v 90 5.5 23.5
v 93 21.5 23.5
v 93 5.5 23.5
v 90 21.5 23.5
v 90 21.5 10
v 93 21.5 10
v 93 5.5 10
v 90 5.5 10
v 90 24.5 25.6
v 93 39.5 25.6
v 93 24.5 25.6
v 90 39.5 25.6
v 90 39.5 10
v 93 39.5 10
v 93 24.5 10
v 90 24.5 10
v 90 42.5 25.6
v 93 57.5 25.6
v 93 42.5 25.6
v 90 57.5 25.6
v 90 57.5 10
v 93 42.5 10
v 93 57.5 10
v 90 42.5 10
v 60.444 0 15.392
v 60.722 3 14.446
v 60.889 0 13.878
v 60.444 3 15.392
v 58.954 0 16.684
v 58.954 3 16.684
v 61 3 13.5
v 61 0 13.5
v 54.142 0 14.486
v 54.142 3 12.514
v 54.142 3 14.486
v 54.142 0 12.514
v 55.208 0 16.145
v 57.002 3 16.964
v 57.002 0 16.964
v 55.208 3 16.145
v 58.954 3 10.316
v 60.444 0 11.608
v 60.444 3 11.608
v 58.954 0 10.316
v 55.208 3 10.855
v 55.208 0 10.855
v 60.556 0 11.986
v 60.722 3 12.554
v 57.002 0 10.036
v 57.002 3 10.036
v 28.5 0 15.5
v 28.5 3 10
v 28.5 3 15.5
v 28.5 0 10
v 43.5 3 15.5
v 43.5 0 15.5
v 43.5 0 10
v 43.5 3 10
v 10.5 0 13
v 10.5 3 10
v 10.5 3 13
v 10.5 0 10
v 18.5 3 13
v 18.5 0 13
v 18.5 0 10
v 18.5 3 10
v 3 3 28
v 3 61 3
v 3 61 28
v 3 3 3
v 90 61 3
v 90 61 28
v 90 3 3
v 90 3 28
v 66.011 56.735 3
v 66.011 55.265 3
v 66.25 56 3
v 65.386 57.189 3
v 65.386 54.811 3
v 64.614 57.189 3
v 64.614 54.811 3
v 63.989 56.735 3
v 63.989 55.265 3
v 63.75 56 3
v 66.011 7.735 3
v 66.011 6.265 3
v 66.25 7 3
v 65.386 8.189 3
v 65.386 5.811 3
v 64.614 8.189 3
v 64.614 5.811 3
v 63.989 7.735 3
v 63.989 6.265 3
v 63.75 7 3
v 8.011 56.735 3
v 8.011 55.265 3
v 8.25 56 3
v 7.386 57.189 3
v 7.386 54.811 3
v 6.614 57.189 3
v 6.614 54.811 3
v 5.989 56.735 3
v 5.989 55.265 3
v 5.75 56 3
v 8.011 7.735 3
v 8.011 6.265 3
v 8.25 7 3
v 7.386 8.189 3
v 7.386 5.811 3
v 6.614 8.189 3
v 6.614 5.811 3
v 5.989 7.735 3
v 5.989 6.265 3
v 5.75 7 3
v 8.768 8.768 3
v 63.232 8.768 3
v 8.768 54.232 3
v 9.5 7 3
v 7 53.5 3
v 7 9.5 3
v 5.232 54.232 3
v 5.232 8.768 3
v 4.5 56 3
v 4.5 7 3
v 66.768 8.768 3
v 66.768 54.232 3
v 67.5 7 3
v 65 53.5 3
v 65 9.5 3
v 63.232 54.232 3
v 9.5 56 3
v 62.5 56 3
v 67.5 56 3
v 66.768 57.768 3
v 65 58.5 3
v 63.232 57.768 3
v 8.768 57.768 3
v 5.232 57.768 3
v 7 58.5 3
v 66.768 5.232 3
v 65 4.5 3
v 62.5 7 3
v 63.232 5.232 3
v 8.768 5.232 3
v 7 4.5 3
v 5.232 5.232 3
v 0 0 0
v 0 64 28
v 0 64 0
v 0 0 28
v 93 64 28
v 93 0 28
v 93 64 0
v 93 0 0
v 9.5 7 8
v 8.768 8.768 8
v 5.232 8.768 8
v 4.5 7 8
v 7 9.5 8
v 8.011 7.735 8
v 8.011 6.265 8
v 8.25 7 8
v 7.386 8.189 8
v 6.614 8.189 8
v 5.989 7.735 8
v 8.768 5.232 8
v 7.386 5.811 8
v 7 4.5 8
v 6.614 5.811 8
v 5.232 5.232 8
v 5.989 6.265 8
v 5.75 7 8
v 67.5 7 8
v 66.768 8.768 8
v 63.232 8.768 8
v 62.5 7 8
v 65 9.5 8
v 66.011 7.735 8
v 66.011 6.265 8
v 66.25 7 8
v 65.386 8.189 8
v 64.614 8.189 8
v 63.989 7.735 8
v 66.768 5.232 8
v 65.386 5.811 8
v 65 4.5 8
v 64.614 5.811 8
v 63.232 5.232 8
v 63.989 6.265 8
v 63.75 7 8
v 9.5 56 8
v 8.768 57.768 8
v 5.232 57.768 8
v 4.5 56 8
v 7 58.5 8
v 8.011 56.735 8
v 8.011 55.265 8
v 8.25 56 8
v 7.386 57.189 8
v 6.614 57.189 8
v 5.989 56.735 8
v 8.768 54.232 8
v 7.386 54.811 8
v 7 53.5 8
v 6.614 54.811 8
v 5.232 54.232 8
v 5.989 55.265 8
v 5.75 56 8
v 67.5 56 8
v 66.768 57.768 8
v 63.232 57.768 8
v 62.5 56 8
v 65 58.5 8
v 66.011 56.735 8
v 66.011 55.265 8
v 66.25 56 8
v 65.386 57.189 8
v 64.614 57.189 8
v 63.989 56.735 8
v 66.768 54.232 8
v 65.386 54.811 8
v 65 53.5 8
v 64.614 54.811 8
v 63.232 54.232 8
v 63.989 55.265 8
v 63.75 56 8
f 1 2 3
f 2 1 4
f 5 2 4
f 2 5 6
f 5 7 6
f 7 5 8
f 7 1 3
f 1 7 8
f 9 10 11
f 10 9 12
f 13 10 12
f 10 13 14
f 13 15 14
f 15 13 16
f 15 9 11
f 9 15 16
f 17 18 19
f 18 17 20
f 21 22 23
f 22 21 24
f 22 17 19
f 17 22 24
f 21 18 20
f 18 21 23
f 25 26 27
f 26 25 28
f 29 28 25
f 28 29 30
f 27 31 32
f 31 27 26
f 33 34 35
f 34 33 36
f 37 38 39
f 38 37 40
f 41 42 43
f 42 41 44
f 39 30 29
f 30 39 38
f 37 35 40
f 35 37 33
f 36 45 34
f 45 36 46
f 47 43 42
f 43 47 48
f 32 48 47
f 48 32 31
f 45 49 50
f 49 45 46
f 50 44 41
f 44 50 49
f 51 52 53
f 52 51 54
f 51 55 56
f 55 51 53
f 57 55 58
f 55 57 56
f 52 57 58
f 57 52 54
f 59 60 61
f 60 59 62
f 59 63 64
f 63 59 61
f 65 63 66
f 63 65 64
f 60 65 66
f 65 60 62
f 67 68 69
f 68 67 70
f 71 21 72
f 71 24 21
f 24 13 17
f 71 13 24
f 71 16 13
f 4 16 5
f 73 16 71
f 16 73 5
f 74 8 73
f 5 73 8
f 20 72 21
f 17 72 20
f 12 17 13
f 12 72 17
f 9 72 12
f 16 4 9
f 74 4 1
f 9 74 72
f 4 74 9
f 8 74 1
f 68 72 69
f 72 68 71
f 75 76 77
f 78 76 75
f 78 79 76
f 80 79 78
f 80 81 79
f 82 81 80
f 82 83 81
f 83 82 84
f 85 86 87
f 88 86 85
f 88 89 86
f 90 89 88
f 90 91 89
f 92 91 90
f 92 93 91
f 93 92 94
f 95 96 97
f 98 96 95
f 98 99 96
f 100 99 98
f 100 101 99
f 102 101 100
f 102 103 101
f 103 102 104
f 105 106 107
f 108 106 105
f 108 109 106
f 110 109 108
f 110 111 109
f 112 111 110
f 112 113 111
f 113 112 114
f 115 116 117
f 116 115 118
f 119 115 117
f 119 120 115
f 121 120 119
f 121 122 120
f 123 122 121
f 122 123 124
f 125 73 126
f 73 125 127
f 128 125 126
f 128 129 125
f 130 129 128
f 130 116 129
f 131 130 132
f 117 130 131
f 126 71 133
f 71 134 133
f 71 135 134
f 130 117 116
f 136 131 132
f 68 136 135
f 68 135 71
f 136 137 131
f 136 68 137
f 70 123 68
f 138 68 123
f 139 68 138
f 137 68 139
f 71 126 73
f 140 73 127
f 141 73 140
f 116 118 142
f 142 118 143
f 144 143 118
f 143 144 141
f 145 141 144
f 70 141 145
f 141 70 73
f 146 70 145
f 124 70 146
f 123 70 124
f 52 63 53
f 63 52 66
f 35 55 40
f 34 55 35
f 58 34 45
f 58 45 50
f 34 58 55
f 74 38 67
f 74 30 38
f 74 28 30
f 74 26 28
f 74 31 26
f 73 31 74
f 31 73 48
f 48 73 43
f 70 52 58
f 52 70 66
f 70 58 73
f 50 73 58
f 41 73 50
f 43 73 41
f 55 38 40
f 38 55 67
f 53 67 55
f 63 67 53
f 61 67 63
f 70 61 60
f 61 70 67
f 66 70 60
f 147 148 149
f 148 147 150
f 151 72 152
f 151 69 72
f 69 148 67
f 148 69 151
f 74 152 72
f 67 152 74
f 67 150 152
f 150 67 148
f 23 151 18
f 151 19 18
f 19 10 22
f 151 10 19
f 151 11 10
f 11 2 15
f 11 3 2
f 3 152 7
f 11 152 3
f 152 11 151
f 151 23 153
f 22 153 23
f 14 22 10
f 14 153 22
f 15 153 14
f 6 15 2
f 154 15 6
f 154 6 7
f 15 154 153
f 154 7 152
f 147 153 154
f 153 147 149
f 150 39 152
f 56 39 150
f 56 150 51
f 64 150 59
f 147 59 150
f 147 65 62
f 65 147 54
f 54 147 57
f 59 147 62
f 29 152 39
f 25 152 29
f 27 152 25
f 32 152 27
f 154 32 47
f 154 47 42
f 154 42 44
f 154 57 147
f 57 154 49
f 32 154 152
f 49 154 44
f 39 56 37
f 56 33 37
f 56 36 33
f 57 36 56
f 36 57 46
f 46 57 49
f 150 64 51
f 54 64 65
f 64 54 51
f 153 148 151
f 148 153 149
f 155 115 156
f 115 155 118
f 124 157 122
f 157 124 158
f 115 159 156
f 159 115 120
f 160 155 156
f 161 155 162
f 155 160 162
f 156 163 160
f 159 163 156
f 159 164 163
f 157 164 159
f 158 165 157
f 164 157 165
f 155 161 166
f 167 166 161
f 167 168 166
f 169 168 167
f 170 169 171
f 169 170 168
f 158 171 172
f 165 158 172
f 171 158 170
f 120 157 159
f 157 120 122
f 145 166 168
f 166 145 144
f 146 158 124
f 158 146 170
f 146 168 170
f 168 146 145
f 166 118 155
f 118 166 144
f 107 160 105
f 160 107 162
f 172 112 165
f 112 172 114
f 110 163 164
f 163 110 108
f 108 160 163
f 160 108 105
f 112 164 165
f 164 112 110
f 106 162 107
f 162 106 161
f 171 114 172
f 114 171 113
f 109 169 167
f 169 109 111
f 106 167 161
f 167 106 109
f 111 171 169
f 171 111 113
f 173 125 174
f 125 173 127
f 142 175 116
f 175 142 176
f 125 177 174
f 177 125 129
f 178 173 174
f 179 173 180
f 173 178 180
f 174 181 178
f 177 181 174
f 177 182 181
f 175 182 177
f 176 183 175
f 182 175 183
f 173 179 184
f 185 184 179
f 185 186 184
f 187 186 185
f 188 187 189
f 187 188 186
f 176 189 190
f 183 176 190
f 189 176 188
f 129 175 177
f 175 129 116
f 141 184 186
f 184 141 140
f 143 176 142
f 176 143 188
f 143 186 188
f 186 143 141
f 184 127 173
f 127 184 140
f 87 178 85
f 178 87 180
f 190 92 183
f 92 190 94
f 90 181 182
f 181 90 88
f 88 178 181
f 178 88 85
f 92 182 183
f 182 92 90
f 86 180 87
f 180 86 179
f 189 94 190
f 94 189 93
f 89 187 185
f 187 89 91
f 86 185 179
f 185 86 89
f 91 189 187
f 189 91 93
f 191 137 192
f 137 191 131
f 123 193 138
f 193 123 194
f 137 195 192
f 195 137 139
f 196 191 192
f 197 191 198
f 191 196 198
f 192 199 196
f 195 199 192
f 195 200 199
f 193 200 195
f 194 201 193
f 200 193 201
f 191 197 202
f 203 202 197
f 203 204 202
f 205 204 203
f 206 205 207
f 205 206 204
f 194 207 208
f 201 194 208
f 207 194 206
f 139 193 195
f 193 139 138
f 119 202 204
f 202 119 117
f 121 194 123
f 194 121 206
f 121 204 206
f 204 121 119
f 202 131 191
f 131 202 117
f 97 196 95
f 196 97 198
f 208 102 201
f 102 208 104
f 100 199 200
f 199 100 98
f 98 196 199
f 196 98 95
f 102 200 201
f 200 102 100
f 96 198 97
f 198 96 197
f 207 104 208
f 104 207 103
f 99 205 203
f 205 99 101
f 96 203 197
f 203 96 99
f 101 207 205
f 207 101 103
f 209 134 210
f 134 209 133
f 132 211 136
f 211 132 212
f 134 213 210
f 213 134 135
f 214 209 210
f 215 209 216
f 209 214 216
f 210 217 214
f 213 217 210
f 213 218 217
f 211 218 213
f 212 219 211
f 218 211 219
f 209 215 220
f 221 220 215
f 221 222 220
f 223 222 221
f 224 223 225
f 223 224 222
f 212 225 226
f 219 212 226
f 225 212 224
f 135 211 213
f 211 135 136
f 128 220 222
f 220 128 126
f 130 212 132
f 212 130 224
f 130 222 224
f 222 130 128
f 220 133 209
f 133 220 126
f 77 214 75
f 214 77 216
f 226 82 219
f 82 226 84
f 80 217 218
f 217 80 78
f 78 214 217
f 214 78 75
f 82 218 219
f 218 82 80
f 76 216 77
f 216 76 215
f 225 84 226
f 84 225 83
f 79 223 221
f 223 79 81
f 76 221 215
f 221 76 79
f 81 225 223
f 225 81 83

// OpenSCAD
cutout_depth=10;
cutout_offset=-cutout_depth/2;

ethernet_width=16;
ethernet_height=13.5;
ethernet_offset=2.5;

audio_jack_width=7;
audio_jack_offset=54.5;

usb_width=15;
usb_height=15.6;
usb1_offset=21.5;
usb2_offset=39.5;

hdmi_width=15;
hdmi_height=5.5;
hdmi_offset=25.5;

micro_usb_width=8;
micro_usb_height=3;
micro_usb_offset=7.5;

m2_5_screw_width=2.5;
m2_5_spacer_width=m2_5_screw_width*2;
m2_5_spacer_height=5;
pcb_thickness=2;

rpi_bounding_height=18;
rpi_bounding_length=87;
rpi_bounding_width=58;

rpi_screw_origin_length=4;
rpi_screw_origin_width=4;
rpi_screw_offset_length=58;
rpi_screw_offset_width=49;

wall_thickness=3;
case_height=rpi_bounding_height+wall_thickness*2+pcb_thickness+2;

module ethernet() {
    cube([cutout_depth,ethernet_width,ethernet_height]);
}

module usb() {
    cube([cutout_depth,usb_width,usb_height]);
}

// TODO
module micro_usb() {
    translate([0,-cutout_depth/2,0]) cube([micro_usb_width,cutout_depth,micro_usb_height]);
}

module hdmi() {
    translate([0,-cutout_depth/2,0]) cube([hdmi_width,cutout_depth,hdmi_height]);
}

module audio_jack() {
    translate([0,0,audio_jack_width/2])
    rotate([90,0,0])
    cylinder(d=audio_jack_width,h=cutout_depth,center=true);
}

module m2_5_screw_hole() {
    cylinder(d=m2_5_screw_width,h=cutout_depth,$fn=10,center=true);
}

module m2_5_spacer() {
    translate([0,0,m2_5_spacer_height/2])
    difference() {
        cylinder(d=m2_5_spacer_width,h=m2_5_spacer_height,center=true);
        cylinder(d=m2_5_screw_width,h=m2_5_spacer_height+cutout_depth,$fn=10,center=true);
    }
}

union() {
    difference() {
        cube([
            rpi_bounding_length+wall_thickness*2,
            rpi_bounding_width+wall_thickness*2,
            case_height
        ]);

        translate([wall_thickness,wall_thickness,wall_thickness])
        union() {
            cube([rpi_bounding_length, rpi_bounding_width, rpi_bounding_height+cutout_depth]);

            // translate([rpi_screw_origin_length,rpi_screw_origin_width,0])
            // union() {
            //     translate([0,0,0]) m2_5_screw_hole();
            //     translate([0,rpi_screw_offset_width,0]) m2_5_screw_hole();
            //     translate([rpi_screw_offset_length,0,0]) m2_5_screw_hole();
            //     translate([rpi_screw_offset_length,rpi_screw_offset_width,0]) m2_5_screw_hole();
            // }

            translate([0,0,m2_5_spacer_height+pcb_thickness])
            union() {
                translate([rpi_bounding_length+cutout_offset,ethernet_offset,0]) ethernet();

                translate([rpi_bounding_length+cutout_offset,usb1_offset,0]) usb();
                translate([rpi_bounding_length+cutout_offset,usb2_offset,0]) usb();

                translate([audio_jack_offset,0,0]) audio_jack();

                translate([hdmi_offset,0,0]) hdmi();

                translate([micro_usb_offset,0,0]) micro_usb();
            }
        }
    }

    translate([
        rpi_screw_origin_length+wall_thickness,
        rpi_screw_origin_width+wall_thickness,
        wall_thickness
    ])
    union() {
        translate([0,0,0]) m2_5_spacer();
        translate([0,rpi_screw_offset_width,0]) m2_5_spacer();
        translate([rpi_screw_offset_length,0,0]) m2_5_spacer();
        translate([rpi_screw_offset_length,rpi_screw_offset_width,0]) m2_5_spacer();
    }
}

//translate([3,0,17])
//cube([4, 60, 3]);
